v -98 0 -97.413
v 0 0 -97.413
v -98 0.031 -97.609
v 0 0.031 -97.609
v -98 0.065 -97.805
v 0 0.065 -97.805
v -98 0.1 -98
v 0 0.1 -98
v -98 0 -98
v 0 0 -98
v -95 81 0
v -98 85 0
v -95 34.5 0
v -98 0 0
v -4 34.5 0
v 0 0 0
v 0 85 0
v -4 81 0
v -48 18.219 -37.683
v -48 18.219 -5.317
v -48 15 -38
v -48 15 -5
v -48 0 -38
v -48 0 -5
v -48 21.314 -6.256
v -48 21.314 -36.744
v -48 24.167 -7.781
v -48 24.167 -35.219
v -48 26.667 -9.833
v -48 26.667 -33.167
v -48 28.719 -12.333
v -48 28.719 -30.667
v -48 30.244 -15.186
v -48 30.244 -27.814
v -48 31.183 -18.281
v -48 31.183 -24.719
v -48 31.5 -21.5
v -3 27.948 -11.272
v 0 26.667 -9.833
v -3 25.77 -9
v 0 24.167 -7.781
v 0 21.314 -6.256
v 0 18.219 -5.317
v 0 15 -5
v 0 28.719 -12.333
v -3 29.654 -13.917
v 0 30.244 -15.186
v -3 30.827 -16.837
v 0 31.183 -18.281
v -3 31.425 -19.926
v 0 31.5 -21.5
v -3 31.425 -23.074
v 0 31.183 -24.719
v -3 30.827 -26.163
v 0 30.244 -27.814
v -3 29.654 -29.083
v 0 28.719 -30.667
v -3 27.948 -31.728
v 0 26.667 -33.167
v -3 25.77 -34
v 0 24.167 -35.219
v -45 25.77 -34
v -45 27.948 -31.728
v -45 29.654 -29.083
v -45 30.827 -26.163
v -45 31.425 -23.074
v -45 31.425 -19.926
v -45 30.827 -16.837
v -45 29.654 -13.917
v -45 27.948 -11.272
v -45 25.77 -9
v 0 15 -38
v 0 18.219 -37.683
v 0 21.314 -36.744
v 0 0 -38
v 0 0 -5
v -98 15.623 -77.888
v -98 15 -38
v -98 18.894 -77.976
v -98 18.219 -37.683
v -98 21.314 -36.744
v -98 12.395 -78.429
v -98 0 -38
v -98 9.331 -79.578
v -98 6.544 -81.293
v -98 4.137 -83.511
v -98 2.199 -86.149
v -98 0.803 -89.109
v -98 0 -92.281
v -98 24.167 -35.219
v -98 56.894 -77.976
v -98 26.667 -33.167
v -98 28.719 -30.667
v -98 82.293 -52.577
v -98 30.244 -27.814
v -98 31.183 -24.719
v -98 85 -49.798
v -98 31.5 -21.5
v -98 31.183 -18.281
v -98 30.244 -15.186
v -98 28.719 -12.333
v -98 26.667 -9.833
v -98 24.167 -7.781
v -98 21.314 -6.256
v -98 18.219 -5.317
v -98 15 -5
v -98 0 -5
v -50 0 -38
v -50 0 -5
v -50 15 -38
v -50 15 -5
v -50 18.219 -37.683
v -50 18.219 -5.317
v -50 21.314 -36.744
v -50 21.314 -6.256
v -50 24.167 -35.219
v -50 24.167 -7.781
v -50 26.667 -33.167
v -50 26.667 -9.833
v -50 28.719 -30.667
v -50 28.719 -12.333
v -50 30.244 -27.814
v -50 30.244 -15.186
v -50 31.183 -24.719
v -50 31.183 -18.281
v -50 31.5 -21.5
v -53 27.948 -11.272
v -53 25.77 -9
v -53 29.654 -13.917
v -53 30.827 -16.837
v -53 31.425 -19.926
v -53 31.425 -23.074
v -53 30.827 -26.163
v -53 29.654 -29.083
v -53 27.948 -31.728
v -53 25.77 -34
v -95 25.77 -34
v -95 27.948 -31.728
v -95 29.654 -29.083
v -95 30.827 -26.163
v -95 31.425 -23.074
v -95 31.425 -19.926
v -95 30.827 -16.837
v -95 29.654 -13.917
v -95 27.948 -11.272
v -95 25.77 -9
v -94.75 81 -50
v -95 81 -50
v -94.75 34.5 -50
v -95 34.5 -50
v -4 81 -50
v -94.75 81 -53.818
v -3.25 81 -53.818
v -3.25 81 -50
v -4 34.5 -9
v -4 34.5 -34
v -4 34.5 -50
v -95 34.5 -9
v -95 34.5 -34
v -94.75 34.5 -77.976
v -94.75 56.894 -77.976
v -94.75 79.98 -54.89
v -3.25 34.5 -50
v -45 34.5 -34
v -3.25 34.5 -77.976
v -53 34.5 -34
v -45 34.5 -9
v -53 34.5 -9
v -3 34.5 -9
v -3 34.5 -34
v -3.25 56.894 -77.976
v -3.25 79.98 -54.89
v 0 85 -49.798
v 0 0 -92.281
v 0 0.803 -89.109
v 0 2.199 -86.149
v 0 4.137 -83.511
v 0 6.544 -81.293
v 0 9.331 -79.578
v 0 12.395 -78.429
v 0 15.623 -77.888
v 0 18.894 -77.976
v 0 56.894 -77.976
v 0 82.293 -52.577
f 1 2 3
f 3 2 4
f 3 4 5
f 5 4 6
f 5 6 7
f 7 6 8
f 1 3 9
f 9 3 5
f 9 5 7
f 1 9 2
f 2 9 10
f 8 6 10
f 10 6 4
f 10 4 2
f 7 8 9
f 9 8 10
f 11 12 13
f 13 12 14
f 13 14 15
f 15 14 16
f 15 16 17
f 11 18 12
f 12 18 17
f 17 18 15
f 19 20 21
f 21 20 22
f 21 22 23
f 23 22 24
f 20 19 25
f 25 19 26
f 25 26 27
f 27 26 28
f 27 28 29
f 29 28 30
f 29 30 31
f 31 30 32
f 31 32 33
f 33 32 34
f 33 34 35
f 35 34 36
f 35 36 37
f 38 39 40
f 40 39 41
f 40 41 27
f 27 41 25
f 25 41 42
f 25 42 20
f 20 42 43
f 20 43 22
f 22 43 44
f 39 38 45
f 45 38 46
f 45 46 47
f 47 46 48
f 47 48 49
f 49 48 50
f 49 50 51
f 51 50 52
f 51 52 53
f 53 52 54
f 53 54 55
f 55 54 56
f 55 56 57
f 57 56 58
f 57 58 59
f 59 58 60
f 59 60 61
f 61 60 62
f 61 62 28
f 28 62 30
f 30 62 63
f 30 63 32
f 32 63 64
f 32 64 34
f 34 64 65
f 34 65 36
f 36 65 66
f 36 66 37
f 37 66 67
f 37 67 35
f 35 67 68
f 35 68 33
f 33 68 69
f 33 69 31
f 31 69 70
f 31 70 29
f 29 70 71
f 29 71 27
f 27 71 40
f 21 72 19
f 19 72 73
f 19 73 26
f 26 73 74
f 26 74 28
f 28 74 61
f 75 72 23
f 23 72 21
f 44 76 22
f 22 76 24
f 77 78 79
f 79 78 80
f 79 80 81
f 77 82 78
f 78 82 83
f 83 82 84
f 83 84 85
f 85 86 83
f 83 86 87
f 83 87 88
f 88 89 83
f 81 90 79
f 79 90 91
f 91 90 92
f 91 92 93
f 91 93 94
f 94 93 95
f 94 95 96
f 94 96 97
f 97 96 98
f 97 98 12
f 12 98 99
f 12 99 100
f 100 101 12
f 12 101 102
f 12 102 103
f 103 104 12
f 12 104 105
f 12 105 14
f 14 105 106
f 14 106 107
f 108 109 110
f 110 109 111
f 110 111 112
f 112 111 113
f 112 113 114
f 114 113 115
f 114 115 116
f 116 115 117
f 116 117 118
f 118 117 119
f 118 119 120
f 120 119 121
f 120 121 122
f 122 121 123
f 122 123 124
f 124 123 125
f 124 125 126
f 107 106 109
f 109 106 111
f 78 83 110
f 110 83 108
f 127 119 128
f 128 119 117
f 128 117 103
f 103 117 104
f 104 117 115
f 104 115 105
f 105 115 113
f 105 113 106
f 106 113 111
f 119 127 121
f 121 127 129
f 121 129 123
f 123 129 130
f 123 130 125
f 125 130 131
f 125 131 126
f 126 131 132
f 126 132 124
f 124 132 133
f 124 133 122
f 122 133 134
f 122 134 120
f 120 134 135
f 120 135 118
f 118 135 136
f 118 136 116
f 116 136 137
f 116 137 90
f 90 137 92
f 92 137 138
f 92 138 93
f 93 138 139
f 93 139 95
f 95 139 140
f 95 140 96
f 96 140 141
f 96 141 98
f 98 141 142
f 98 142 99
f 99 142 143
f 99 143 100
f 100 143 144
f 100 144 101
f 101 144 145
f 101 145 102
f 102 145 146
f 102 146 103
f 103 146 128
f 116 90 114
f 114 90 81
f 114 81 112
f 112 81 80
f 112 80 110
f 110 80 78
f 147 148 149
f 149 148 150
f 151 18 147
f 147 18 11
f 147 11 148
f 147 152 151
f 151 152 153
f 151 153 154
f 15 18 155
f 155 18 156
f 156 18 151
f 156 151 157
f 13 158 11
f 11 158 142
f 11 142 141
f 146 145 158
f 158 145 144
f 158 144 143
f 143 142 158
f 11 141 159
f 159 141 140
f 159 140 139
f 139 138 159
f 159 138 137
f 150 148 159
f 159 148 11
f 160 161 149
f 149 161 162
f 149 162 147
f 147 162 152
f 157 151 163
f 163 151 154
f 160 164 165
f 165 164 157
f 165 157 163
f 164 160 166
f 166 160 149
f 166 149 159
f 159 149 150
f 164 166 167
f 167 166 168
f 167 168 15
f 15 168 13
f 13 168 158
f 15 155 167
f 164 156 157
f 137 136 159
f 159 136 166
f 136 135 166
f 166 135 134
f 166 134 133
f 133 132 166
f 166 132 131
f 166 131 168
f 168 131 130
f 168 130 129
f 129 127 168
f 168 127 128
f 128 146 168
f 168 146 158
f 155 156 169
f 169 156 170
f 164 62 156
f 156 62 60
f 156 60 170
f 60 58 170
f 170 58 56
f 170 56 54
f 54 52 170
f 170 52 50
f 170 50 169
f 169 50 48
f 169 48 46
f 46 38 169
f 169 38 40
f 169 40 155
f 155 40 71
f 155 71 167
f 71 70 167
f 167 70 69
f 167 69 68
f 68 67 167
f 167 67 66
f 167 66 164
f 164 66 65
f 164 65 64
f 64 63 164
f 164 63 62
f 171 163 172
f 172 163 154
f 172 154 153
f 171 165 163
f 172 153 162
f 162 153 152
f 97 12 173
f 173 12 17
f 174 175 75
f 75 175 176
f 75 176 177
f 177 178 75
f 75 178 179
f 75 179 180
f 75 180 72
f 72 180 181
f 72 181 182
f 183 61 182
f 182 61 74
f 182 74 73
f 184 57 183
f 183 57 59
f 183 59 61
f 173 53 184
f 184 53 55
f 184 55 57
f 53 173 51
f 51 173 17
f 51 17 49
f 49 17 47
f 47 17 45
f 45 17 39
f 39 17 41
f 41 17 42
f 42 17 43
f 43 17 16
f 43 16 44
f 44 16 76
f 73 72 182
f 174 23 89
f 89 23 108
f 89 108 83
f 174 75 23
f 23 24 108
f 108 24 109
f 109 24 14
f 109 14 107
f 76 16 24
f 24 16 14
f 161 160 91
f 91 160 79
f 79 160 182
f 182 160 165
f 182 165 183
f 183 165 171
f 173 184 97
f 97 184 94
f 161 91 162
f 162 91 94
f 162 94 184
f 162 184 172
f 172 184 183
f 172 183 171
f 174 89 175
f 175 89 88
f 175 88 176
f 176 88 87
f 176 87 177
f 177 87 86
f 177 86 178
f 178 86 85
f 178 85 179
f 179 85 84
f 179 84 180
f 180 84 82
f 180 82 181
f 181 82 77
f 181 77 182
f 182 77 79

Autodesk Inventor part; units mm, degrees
ref_plane "YZ Plane" through (0, 0, 0) normal (1, 0, 0) x (0, 1, 0)
ref_plane "XZ Plane" through (0, 0, 0) normal (0, 1, 0) x (-1, 0, 0)
ref_plane "XY Plane" through (0, 0, 0) normal (0, 0, 1) x (1, 0, 0)
sketch "Esboço1" plane through (0, 0, 0) normal (0, 1, 0) x (-1, 0, 0)
  line L0 (0, 0) -> (98, 0)
  line L1 (98, 0) -> (98, -98)
  line L2 (98, -98) -> (0, -98)
  line L3 (0, -98) -> (0, 0)
  dimension "d0" = 98
  dimension "d1" = 98
extrude "Extrusão1" add sketch "Esboço1" along normal blind 85
sketch "Esboço2" plane through (0, 0, 0) normal (1, 0, 0) x (0, 0, -1)
  line L0 (98, 0) -> (0, 0) projected
  circle A0 centre (21.5, 15) radius 16.5
  line L1 (38, 15) -> (38, 0)
  line L2 (5, 15) -> (5, 0)
  line L3 (5.2895, 0) -> (38, 0)
  line L4 (98, 85) -> (0, 85) projected
  line L5 (98, 0) -> (98, 85)
  line L6 (53, 85) -> (53, 85)
  line L7 (58, 0) -> (98, 0)
  line L8 (53, 85) -> (98, 85)
  line L9 (98, 85) -> (98, 0)
  line L10 (98, 0) -> (100, 0)
  line L11 (53, 0) -> (53, 85)
  line L12 (98, 0) -> (80, 0)
  line L13 (80, 20) -> (80, 58)
  arc A1 (80, 20) -> (100, 0) centre (100, 20) ccw
  line L14 (80, 58) -> (53, 85)
  line L15 (53, 85) -> (98, 85)
  line L16 (98, 85) -> (98, 0)
  line L17 (98, 0.1003) -> (98, 0)
  point P0 (80, 85)
  point P1 (80, 85)
  dimension "d10" = 33
  dimension "d11" = 45
  dimension "d12" = 18
  dimension "d13" = 20
  dimension "d14" = 27
  dimension "d15" = 27
extrude "Extrusão2" cut sketch "Esboço2" against normal blind 48 contours L0 A0 L1 | L0 A0 | L0 L2 A0 picked at (26.8574, 18.8676)
extrude "Extrusão3" cut sketch "Esboço2" against normal blind 98 contours A1 L13 L14 L4 L5
sketch "Esboço3" plane through (0, 0, 0) normal (1, 0, 0) x (0, 0, -1)
  line L0 (53, 85) -> (80, 58) projected
  line L1 (53, 85) -> (0, 85) projected
  line L2 (52.5769, 82.2934) -> (77.9758, 56.8945)
  line L3 (77.9758, 56.8945) -> (77.9758, 18.8945)
  line L4 (80, 58) -> (80, 20) projected
  line L5 (98, 0) -> (98, 0.1003) projected
  arc A0 (77.9758, 18.8945) -> (98, 0.1003) centre (94.847, 16.8053) ccw
  line L6 (52.5769, 82.2934) -> (49.7979, 85)
  line L7 (49.7979, 85) -> (53, 85)
  line L8 (49.7979, 85) -> (53, 85)
  line L9 (53, 85) -> (80, 58)
  line L10 (80, 58) -> (80, 20)
  arc A1 (80, 20) -> (98, 0.1003) centre (100, 20) ccw projected
  arc A2 (80, 20) -> (98, 0.1003) centre (100, 20) ccw
  point P0 (0, 0)
  dimension "d21" = 17
sketch "Esboço4" plane through (-98, 0, -98) normal (-1, 0, 0) x (0, 0, 1)
  arc A0 (93, 15) -> (60, 15) centre (76.5, 15) ccw projected
  circle A1 centre (76.5, 15) radius 16.5
  line L0 (60, 15) -> (60, 0) projected
  line L1 (60, 15) -> (60, 0)
  line L2 (93, 15) -> (93, 0)
  line L3 (60, 0) -> (93, 0)
  line L4 (0, 0) -> (98, 0) projected
extrude "Extrusão4" cut sketch "Esboço4" against normal blind 48 contours A1 L3 A0 | L2 L3 A1 | A1 L3 L0
sketch "Esboço5" plane through (-98, 0, 0) normal (0, 0, 1) x (1, 0, 0)
  line L0 (0, 15) -> (0, 31.5) projected
  line L1 (0, 31.5) -> (0, 34.5)
  line L2 (0, 0) -> (0, 85) projected
  line L3 (0, 34.5) -> (4, 34.5)
  line L4 (0, 85) -> (98, 85) projected
  line L5 (0, 85) -> (3, 85)
  line L6 (3, 85) -> (3, 81)
  line L7 (98, 85) -> (95, 85)
  line L8 (95, 85) -> (95, 81)
  line L9 (98, 0) -> (98, 85) projected
  line L10 (98, 34.5) -> (98, 30.5)
  line L11 (98, 34.5) -> (94, 34.5)
  line L12 (3, 81) -> (94, 81)
  line L13 (94, 81) -> (94, 34.5)
  line L14 (94, 34.5) -> (3, 34.5)
  line L15 (3, 34.5) -> (3, 81)
  point P0 (3, 34.5)
  point P1 (4, 34.5)
  dimension "d24" = 3
  dimension "d25" = 4
  dimension "d26" = 3
  dimension "d27" = 4
  dimension "d28" = 3
  dimension "d29" = 4
extrude "Extrusão5" cut sketch "Esboço5" against normal blind 50 contours L15 L12 L13 L14 L3
ref_plane "Plano de trabalho1" through (-49, 0, 0) normal (-1, 0, 0) x (0, 0, 1)
sketch "Esboço6" plane through (-49, 0, 0) normal (-1, 0, 0) x (0, 0, 1)
  line L0 (0, 34.5) -> (-50, 34.5) projected
  line L1 (-50, 34.5) -> (-80, 34.5)
  line L2 (-80, 34.5) -> (-80, 58)
  line L3 (-50, 81) -> (-50, 34.5) projected
  line L4 (-50, 81) -> (-50, 34.5)
  line L5 (-53, 85) -> (-80, 58) projected
  line L6 (-80, 58) -> (-78, 58)
  line L7 (-78, 58) -> (-53.8179, 81)
  line L8 (-53.8179, 81) -> (-50, 81)
  point P0 (0, 0)
  dimension "d34" = 30
  dimension "d49" = 2
extrude "Extrusão6" cut sketch "Esboço6" along normal mid plane 91.5
sketch "Esboço7" plane through (-95, 34.5, 0) normal (0, 1, 0) x (1, 0, 0)
  line L0 (-3, 38) -> (45, 38) projected
  line L1 (-3, 38) -> (0, 38)
  line L2 (0, 34) -> (42, 34)
  line L3 (42, 34) -> (42, 9)
  line L4 (42, 9) -> (0, 9)
  line L5 (0, 9) -> (0, 34)
  line L6 (47, 38) -> (47, 5) projected
  line L7 (50, 34) -> (92, 34)
  line L8 (92, 34) -> (92, 9)
  line L9 (92, 9) -> (50, 9)
  line L10 (50, 9) -> (50, 34)
  point P0 (95, 0)
  dimension "d38" = 3
  dimension "d39" = 4
  dimension "d40" = 42
  dimension "d43" = 42
  dimension "d44" = 25
extrude "Extrusão7" cut sketch "Esboço7" against normal blind 10.5
extrude "Extrusão8" cut sketch "Esboço3" against normal blind 98
sketch "Esboço8" plane through (0, 0, 0) normal (1, 0, 0) x (0, 0, -1)
  point P0 (0, 0)
equation "\"d15\" = d14"
properties part number "Mini sumô v3"
